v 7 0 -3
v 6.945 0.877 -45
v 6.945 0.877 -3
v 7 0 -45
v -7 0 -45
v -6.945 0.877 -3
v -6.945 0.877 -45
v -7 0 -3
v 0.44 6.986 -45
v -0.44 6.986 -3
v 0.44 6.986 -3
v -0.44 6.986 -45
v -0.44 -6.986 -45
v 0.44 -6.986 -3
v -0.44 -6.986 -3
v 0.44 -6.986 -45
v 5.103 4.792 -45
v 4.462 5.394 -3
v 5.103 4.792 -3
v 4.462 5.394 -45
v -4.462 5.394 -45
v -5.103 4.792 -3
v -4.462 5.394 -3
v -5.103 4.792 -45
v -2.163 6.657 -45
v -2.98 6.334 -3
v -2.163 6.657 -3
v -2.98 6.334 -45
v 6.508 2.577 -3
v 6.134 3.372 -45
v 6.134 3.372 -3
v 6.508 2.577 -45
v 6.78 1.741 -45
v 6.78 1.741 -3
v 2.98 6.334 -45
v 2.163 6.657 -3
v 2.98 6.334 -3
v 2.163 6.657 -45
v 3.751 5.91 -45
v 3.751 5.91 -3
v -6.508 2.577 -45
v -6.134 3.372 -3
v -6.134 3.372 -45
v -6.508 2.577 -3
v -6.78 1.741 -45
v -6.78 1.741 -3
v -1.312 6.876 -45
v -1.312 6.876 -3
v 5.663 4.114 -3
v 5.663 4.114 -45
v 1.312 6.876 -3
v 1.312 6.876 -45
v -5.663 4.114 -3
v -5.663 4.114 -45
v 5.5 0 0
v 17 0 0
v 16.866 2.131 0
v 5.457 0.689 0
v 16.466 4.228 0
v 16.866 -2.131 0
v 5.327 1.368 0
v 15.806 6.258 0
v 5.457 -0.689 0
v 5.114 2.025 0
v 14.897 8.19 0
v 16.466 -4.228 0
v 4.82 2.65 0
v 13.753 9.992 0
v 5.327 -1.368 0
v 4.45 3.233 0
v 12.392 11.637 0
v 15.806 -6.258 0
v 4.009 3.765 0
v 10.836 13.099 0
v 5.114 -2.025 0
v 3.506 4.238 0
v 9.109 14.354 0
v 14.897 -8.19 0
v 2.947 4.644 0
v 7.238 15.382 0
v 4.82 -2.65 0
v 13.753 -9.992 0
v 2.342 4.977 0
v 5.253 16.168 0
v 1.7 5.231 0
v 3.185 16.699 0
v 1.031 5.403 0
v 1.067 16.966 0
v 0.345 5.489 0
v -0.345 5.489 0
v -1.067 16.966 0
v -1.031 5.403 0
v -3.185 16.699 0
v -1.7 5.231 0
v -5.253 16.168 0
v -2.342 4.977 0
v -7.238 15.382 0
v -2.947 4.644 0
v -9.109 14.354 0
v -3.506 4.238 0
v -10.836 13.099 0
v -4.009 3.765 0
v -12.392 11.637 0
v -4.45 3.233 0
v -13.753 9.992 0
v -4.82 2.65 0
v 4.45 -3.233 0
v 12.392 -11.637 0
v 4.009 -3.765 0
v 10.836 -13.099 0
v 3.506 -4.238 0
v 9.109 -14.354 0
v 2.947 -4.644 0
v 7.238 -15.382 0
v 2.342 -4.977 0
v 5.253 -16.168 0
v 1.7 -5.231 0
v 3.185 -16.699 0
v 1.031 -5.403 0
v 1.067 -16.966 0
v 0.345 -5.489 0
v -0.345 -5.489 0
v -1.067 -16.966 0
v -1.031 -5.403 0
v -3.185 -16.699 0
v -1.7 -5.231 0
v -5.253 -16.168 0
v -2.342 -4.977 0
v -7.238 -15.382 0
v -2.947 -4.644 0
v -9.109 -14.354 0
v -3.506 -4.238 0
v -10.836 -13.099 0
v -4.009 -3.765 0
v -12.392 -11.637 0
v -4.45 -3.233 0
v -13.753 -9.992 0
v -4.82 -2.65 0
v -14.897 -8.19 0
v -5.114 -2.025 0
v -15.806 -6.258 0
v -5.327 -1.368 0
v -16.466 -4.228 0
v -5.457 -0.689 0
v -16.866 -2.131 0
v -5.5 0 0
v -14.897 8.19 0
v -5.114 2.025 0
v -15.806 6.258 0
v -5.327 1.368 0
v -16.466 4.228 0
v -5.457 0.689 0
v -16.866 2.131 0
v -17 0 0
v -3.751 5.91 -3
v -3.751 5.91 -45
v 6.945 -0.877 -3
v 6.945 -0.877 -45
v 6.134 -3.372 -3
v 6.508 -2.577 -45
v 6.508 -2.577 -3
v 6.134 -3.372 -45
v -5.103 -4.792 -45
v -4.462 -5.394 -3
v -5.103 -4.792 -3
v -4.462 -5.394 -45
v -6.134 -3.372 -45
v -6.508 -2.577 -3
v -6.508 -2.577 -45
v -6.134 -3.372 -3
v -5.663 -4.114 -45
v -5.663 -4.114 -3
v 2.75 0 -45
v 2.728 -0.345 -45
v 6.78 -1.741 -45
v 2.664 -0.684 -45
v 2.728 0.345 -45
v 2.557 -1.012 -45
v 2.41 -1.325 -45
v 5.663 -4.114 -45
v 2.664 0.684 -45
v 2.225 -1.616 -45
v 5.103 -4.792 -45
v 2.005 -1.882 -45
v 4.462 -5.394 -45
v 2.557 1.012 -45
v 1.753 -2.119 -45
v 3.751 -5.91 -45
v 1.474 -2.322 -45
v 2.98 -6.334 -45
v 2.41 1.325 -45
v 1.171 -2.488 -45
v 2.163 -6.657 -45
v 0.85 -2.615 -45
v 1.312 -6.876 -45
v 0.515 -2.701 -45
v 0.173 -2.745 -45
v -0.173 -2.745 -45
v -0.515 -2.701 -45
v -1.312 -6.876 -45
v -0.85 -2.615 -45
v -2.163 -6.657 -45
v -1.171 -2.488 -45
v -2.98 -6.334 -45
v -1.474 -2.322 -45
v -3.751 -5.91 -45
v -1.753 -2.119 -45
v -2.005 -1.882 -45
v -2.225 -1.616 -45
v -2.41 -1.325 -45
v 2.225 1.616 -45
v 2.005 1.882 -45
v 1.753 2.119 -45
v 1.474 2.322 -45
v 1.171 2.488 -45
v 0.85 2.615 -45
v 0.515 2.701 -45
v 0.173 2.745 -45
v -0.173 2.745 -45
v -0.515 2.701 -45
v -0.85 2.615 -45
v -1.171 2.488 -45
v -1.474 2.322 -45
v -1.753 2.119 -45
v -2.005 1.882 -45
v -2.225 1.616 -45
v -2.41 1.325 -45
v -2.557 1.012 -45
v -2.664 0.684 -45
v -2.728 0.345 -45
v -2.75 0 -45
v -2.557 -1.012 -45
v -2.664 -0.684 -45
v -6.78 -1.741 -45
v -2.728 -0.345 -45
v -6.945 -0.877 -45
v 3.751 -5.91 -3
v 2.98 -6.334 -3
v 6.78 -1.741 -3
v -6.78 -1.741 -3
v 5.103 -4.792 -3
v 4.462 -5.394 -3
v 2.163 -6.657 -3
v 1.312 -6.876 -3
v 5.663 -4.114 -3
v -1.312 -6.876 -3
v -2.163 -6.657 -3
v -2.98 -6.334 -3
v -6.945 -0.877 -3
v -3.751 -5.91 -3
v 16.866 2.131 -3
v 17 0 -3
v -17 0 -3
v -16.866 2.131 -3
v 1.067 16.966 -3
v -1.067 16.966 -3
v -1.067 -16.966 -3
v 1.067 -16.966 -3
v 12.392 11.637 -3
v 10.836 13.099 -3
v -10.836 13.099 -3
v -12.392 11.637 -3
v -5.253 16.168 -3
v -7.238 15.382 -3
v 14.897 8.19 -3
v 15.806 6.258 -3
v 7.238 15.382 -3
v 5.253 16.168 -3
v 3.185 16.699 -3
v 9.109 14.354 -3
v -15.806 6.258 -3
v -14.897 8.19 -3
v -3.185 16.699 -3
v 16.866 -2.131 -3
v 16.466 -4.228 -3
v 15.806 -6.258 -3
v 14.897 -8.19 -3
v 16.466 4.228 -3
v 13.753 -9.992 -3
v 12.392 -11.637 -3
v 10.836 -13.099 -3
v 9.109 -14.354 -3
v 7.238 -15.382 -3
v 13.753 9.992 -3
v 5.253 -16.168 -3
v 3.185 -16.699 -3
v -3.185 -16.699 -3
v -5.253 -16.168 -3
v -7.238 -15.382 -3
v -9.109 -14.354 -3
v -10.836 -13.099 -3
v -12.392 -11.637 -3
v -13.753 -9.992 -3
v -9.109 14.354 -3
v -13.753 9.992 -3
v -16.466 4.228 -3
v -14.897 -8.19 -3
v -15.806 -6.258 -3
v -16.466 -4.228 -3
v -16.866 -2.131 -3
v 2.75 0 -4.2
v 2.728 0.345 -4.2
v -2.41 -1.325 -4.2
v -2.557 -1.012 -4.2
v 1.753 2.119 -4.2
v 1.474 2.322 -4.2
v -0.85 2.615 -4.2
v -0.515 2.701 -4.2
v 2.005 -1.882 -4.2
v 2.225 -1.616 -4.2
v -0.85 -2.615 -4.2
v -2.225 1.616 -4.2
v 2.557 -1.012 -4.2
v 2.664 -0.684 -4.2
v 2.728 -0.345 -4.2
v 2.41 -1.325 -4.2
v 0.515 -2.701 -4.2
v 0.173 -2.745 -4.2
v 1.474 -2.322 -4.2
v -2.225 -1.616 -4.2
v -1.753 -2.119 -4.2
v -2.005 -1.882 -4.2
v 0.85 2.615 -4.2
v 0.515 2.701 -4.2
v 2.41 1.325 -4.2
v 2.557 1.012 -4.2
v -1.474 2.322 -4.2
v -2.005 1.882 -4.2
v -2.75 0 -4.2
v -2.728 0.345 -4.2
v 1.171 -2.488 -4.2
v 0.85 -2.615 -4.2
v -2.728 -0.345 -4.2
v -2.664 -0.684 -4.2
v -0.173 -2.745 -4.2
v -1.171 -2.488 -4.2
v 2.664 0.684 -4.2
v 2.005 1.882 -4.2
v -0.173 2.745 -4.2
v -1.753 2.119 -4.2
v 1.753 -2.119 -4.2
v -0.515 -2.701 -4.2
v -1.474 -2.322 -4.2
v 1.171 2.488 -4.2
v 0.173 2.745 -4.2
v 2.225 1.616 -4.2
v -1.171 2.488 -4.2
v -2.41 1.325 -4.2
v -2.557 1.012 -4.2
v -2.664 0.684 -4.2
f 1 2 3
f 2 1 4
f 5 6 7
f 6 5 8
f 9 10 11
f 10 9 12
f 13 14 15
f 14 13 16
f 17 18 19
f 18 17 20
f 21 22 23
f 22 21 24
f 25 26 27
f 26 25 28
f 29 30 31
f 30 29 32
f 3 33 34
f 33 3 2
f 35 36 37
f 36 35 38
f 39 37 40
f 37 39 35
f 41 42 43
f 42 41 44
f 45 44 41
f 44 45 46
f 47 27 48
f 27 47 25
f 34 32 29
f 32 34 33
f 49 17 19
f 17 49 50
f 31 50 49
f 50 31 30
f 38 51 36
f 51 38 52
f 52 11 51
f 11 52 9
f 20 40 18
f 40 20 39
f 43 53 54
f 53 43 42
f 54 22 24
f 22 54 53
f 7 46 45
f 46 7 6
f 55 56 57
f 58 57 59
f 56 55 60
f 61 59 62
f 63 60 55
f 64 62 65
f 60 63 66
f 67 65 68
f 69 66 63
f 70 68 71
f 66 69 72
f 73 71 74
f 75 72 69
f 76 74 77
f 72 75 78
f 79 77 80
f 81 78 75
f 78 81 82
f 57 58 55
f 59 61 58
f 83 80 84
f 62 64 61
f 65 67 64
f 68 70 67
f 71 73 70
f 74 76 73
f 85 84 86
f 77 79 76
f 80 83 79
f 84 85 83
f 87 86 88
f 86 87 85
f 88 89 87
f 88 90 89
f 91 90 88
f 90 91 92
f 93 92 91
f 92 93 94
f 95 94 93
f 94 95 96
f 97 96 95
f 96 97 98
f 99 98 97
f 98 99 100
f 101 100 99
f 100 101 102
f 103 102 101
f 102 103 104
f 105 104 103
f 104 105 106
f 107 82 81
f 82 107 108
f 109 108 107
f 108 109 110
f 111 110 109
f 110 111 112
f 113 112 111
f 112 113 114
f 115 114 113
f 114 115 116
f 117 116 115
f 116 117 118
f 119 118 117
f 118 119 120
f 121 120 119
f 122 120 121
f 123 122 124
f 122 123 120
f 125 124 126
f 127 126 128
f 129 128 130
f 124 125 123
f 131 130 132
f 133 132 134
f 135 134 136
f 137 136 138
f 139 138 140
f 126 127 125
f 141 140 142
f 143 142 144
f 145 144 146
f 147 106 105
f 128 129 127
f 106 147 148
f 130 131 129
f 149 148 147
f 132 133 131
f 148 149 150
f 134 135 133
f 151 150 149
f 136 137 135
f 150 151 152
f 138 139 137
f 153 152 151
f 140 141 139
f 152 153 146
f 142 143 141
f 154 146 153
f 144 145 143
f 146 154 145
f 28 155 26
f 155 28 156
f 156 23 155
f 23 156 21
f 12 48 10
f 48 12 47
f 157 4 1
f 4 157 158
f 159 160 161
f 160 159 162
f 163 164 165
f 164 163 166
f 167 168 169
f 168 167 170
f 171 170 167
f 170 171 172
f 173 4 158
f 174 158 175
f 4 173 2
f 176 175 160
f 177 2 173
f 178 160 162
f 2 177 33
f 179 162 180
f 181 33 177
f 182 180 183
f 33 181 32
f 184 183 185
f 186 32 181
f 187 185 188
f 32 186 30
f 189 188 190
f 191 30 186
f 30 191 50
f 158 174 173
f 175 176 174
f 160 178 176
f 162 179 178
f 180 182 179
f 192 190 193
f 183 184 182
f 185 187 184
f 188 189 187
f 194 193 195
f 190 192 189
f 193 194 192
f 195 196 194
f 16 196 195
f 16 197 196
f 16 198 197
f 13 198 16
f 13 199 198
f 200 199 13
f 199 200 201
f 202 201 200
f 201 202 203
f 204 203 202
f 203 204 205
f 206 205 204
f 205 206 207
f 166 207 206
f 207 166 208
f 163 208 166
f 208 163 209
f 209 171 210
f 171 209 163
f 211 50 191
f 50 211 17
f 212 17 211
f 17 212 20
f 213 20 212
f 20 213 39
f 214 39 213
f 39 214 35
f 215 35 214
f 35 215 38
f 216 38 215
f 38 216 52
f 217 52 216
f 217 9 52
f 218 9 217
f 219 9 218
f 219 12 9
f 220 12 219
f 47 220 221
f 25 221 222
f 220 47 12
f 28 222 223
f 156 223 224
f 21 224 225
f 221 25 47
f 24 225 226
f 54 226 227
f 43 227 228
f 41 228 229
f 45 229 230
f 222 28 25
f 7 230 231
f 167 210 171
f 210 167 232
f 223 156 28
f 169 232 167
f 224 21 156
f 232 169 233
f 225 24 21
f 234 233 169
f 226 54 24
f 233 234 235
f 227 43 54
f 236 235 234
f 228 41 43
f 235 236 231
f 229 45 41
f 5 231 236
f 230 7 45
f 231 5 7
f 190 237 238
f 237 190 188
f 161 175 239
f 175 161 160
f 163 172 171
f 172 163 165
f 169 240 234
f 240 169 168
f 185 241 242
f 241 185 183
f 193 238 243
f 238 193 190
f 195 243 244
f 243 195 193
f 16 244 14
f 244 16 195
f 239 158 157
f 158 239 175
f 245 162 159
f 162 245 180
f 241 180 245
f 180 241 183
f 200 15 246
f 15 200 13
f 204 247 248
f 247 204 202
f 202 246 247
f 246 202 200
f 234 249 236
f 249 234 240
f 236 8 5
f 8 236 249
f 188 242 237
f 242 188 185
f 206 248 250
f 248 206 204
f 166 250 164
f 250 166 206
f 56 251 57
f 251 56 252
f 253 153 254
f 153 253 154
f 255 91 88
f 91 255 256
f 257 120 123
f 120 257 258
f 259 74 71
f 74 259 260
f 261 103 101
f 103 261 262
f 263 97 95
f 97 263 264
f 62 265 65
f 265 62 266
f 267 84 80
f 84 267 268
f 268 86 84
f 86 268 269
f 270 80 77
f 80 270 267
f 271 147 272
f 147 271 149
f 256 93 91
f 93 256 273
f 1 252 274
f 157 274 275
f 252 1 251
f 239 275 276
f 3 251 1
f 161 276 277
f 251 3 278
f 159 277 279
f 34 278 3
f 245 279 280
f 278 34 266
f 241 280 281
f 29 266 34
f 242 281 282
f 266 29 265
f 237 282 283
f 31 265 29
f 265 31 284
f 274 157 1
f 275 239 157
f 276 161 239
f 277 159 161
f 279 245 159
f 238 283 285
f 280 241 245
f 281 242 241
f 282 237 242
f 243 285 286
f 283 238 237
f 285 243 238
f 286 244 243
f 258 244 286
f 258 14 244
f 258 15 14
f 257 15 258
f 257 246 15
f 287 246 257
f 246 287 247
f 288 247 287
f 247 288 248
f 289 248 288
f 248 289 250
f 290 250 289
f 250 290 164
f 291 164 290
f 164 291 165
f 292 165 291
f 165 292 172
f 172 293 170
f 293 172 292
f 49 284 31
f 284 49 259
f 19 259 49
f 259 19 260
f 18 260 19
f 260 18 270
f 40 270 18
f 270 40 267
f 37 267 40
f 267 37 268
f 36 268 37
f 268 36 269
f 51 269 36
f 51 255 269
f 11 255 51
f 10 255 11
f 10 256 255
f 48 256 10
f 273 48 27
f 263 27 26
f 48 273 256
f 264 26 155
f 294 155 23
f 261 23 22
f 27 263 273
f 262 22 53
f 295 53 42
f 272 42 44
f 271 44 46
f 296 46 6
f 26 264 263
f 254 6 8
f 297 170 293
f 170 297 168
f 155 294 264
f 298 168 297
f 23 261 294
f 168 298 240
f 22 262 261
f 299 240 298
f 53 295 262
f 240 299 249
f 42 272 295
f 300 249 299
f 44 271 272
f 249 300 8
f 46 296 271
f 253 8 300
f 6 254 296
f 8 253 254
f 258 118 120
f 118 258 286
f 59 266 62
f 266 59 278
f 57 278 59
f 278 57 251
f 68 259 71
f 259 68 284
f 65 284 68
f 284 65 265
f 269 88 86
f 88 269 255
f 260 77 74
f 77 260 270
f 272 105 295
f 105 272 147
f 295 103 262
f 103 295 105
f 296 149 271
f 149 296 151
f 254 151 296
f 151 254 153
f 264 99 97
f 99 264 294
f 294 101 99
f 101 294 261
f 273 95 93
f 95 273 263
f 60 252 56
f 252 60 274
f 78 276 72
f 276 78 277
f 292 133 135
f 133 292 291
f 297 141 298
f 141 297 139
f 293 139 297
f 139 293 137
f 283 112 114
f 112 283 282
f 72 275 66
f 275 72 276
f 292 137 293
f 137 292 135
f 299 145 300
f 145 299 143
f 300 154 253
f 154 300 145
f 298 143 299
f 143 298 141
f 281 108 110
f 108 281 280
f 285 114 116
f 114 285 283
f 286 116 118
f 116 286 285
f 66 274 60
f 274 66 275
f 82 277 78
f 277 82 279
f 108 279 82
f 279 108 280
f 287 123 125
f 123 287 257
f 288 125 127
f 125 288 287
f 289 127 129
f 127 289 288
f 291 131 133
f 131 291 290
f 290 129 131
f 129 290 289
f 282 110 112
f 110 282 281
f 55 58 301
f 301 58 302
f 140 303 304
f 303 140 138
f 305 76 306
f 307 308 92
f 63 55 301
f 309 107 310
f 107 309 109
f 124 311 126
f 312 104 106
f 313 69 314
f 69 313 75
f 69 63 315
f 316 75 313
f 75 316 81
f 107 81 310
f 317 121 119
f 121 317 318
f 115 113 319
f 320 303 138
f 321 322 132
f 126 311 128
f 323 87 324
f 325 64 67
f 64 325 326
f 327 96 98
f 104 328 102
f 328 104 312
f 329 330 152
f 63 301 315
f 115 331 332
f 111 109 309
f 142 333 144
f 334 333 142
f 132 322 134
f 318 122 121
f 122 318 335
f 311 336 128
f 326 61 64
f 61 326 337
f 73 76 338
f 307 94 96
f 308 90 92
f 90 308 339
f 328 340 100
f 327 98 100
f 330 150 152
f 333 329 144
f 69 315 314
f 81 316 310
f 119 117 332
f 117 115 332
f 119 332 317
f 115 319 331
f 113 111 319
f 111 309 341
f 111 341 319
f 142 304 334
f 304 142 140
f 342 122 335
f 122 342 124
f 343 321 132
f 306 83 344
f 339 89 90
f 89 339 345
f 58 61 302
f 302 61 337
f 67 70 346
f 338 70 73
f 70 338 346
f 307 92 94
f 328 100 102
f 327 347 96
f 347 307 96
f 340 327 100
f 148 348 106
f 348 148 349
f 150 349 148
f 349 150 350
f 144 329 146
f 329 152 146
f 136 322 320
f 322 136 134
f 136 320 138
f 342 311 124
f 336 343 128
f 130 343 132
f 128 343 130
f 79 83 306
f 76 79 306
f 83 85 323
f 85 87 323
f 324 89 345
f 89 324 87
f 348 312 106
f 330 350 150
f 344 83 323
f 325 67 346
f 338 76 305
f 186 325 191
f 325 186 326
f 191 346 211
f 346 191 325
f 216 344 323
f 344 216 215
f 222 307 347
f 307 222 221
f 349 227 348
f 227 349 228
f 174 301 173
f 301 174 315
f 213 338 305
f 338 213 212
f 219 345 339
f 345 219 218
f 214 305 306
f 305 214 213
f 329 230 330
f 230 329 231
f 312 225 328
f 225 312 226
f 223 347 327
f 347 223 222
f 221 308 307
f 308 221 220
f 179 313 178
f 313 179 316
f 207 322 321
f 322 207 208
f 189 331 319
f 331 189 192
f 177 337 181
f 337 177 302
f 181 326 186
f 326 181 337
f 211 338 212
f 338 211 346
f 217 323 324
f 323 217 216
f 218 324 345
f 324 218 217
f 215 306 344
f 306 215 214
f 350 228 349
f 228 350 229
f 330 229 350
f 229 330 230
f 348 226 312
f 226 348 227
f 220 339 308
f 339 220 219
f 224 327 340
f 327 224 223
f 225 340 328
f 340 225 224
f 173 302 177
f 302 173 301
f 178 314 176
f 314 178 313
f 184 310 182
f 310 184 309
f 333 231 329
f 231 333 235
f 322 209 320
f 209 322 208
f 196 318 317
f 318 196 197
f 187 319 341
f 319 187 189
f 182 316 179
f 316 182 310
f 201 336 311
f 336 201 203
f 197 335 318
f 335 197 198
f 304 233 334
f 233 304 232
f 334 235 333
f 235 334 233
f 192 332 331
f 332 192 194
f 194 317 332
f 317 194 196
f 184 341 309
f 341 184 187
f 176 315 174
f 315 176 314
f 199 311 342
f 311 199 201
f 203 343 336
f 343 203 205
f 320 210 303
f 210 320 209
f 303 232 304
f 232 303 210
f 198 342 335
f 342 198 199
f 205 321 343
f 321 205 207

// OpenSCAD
$fn = 50;


difference() {
	union() {
		translate(v = [0, 0, -45.0000000000]) {
			cylinder(h = 45, r = 7.0000000000);
		}
		translate(v = [0, 0, -3.0000000000]) {
			cylinder(h = 3, r = 17.0000000000);
		}
	}
	union() {
		translate(v = [0, 0, 0]) {
			rotate(a = [0, 0, 0]) {
				difference() {
					union() {
						#translate(v = [0, 0, -45.0000000000]) {
							cylinder(h = 45, r = 2.2500000000);
						}
						#translate(v = [0, 0, -4.2000000000]) {
							cylinder(h = 4.2000000000, r1 = 2.7500000000, r2 = 5.5000000000);
						}
						#translate(v = [0, 0, -45.0000000000]) {
							cylinder(h = 45, r = 2.7500000000);
						}
						#translate(v = [0, 0, -45.0000000000]) {
							cylinder(h = 45, r = 2.2500000000);
						}
					}
					union();
				}
			}
		}
	}
}
